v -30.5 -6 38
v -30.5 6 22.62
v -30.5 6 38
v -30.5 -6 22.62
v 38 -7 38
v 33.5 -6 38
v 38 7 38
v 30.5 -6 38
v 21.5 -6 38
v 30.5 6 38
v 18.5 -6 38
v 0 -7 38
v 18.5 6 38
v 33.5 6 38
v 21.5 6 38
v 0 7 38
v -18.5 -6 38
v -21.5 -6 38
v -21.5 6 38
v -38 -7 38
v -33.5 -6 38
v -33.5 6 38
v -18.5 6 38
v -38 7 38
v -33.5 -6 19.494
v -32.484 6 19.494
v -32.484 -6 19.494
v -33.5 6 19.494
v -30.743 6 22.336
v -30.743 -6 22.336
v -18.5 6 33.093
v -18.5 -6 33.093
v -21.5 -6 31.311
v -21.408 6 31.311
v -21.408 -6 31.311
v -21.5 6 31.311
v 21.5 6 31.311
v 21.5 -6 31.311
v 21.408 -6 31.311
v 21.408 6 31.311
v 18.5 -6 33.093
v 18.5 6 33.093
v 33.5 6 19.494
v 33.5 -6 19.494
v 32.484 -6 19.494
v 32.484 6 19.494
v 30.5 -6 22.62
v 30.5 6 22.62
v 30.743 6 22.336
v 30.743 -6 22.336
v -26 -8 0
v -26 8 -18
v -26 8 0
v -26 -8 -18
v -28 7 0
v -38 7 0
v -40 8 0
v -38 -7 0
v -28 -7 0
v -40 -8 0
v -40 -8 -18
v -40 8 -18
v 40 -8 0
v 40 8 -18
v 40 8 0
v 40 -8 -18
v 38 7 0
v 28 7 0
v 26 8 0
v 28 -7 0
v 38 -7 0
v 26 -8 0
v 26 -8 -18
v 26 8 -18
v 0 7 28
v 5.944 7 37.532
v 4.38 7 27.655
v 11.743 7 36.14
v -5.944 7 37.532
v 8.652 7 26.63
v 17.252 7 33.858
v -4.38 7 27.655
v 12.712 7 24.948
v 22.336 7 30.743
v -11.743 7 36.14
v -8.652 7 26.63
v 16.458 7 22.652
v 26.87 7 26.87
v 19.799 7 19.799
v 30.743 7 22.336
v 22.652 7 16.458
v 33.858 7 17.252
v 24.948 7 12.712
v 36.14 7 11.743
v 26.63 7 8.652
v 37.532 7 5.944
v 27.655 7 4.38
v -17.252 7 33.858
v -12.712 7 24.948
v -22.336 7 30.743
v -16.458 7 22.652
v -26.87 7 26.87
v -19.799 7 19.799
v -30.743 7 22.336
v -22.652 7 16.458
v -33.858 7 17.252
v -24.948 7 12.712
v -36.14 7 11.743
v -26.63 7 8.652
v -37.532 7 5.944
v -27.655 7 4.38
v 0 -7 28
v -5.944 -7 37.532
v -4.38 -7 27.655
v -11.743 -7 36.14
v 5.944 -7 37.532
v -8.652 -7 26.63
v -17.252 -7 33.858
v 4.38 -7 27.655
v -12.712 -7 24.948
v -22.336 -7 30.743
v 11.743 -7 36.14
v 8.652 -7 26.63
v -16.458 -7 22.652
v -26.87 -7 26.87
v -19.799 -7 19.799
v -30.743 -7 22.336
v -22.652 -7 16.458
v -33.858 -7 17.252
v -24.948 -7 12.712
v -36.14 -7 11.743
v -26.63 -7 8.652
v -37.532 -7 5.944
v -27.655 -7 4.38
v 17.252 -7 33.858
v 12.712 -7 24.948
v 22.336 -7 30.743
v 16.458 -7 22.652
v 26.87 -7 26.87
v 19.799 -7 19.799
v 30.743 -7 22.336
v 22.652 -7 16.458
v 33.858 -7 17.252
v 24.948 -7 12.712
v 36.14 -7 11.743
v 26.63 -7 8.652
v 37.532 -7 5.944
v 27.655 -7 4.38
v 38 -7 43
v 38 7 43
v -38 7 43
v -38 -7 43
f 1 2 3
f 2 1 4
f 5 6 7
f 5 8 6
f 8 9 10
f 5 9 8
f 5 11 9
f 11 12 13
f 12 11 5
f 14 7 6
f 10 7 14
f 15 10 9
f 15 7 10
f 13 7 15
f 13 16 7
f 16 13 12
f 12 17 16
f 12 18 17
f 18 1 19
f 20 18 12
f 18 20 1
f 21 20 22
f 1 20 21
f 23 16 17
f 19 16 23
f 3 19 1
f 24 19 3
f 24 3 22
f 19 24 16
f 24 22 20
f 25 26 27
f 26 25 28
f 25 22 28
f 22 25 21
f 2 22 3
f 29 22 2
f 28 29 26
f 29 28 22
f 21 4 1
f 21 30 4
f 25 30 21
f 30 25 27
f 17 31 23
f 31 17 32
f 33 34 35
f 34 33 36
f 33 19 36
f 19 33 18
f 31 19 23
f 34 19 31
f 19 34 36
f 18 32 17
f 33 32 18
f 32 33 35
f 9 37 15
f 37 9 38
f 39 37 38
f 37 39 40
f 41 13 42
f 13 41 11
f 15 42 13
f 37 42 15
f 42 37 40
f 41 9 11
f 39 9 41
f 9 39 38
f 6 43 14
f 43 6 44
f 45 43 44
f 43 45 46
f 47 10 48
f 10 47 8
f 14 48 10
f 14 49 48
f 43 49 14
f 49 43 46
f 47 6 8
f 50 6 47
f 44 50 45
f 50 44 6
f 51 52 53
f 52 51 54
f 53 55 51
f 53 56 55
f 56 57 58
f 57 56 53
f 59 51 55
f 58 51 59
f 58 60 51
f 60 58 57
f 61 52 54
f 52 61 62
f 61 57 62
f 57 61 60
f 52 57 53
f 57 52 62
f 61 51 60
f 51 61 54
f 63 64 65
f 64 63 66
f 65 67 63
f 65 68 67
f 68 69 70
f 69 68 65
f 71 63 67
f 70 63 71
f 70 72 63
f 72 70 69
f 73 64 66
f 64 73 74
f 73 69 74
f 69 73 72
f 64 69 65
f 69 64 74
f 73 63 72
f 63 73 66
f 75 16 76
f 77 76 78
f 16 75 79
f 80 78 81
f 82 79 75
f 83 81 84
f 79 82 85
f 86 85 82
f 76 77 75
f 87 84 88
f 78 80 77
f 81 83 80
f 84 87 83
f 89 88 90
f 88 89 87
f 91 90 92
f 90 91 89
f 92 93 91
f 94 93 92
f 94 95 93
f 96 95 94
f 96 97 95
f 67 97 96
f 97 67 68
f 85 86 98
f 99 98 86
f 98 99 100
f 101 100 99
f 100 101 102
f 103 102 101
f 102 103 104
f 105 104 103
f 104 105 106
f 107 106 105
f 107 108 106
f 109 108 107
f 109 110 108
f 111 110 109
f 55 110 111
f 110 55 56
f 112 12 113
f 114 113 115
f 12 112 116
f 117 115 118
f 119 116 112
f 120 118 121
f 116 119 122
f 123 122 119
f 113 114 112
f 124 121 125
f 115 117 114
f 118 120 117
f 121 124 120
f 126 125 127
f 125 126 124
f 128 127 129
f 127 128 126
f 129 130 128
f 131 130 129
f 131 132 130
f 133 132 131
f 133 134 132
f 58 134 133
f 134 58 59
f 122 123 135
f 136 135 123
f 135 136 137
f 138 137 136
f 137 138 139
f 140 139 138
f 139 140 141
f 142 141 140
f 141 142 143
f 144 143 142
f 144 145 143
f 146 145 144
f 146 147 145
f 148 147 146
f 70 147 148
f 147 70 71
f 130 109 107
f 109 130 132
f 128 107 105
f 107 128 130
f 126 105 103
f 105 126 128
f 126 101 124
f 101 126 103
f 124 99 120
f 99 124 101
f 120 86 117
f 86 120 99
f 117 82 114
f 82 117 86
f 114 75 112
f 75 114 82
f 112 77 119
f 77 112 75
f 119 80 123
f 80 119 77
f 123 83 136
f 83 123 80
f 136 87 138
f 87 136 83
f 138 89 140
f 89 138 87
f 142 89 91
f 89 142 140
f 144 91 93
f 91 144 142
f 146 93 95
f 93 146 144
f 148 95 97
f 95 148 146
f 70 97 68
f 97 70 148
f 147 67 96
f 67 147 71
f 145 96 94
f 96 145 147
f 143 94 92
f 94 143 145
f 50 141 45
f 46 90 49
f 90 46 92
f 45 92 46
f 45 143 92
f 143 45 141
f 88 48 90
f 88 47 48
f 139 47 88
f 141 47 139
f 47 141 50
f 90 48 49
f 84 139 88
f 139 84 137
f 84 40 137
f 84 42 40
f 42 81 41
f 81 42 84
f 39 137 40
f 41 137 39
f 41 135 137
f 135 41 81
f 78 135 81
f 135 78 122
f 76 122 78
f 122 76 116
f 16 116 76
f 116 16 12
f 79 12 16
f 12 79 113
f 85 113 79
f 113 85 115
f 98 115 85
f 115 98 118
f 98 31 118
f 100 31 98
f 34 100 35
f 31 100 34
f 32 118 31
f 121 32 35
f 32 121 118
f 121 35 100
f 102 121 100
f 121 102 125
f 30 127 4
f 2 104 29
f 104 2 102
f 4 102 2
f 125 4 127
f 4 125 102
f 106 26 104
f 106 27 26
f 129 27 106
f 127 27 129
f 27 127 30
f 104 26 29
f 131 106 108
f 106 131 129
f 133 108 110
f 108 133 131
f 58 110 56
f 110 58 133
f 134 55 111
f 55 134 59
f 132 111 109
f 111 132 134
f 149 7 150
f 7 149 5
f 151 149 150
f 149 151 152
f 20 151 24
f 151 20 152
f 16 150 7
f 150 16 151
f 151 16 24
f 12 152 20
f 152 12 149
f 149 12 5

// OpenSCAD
// file: _common.scad
// structure-sim 共用設定
$fn = 40;

// 桿件：從點 a 到點 b 畫一個圓柱桿
module rod(a, b, r = 1.5) {
  v = b - a;
  L = norm(v);
  // 計算旋轉到 v 方向的角度
  ay = atan2(sqrt(v[0]*v[0] + v[1]*v[1]), v[2]);
  az = atan2(v[1], v[0]);
  translate(a) rotate([0, ay, az]) cylinder(h = L, r = r);
}
// main file
// 拱 Arch — 半圓拱（開口向下）+ 拱上立柱 + 橋面
include <_common.scad>

R_OUT = 38;  // 拱外半徑（拱頂高度）
R_IN  = 28;  // 拱內半徑（拱厚 10）

// 半圓拱（從大半圓減去小半圓得到拱殼；取 y ≥ 0 的上半圓，旋轉後成為開口向下的拱）
color([0.78, 0.69, 0.50])
  rotate([90, 0, 0])
    linear_extrude(height = 14, center = true)
      difference() {
        intersection() {
          circle(r = R_OUT);
          translate([0, 20]) square([80, 40], center = true);
        }
        intersection() {
          circle(r = R_IN);
          translate([0, 20]) square([80, 40], center = true);
        }
      }

// 拱上立柱（spandrel）：把橋面重量傳到拱身，拱身再把力「壓」向兩側橋台
color([0.55, 0.45, 0.35])
  for (x = [-32, -20, 20, 32]) {
    z0 = sqrt(R_OUT * R_OUT - x * x) - 1;  // 拱外緣高度
    translate([x - 1.5, -6, z0]) cube([3, 12, R_OUT - z0]);
  }

// 橋面（拱頂上方平台）
color([0.55, 0.45, 0.35])
  translate([-38, -7, R_OUT]) cube([76, 14, 5]);

// 橋台（兩側支撐底座，接在拱腳正下方，承受拱的垂直力與水平推力）
color([0.45, 0.45, 0.45]) {
  translate([-40, -8, -18]) cube([14, 16, 18]);
  translate([ 26, -8, -18]) cube([14, 16, 18]);
}
